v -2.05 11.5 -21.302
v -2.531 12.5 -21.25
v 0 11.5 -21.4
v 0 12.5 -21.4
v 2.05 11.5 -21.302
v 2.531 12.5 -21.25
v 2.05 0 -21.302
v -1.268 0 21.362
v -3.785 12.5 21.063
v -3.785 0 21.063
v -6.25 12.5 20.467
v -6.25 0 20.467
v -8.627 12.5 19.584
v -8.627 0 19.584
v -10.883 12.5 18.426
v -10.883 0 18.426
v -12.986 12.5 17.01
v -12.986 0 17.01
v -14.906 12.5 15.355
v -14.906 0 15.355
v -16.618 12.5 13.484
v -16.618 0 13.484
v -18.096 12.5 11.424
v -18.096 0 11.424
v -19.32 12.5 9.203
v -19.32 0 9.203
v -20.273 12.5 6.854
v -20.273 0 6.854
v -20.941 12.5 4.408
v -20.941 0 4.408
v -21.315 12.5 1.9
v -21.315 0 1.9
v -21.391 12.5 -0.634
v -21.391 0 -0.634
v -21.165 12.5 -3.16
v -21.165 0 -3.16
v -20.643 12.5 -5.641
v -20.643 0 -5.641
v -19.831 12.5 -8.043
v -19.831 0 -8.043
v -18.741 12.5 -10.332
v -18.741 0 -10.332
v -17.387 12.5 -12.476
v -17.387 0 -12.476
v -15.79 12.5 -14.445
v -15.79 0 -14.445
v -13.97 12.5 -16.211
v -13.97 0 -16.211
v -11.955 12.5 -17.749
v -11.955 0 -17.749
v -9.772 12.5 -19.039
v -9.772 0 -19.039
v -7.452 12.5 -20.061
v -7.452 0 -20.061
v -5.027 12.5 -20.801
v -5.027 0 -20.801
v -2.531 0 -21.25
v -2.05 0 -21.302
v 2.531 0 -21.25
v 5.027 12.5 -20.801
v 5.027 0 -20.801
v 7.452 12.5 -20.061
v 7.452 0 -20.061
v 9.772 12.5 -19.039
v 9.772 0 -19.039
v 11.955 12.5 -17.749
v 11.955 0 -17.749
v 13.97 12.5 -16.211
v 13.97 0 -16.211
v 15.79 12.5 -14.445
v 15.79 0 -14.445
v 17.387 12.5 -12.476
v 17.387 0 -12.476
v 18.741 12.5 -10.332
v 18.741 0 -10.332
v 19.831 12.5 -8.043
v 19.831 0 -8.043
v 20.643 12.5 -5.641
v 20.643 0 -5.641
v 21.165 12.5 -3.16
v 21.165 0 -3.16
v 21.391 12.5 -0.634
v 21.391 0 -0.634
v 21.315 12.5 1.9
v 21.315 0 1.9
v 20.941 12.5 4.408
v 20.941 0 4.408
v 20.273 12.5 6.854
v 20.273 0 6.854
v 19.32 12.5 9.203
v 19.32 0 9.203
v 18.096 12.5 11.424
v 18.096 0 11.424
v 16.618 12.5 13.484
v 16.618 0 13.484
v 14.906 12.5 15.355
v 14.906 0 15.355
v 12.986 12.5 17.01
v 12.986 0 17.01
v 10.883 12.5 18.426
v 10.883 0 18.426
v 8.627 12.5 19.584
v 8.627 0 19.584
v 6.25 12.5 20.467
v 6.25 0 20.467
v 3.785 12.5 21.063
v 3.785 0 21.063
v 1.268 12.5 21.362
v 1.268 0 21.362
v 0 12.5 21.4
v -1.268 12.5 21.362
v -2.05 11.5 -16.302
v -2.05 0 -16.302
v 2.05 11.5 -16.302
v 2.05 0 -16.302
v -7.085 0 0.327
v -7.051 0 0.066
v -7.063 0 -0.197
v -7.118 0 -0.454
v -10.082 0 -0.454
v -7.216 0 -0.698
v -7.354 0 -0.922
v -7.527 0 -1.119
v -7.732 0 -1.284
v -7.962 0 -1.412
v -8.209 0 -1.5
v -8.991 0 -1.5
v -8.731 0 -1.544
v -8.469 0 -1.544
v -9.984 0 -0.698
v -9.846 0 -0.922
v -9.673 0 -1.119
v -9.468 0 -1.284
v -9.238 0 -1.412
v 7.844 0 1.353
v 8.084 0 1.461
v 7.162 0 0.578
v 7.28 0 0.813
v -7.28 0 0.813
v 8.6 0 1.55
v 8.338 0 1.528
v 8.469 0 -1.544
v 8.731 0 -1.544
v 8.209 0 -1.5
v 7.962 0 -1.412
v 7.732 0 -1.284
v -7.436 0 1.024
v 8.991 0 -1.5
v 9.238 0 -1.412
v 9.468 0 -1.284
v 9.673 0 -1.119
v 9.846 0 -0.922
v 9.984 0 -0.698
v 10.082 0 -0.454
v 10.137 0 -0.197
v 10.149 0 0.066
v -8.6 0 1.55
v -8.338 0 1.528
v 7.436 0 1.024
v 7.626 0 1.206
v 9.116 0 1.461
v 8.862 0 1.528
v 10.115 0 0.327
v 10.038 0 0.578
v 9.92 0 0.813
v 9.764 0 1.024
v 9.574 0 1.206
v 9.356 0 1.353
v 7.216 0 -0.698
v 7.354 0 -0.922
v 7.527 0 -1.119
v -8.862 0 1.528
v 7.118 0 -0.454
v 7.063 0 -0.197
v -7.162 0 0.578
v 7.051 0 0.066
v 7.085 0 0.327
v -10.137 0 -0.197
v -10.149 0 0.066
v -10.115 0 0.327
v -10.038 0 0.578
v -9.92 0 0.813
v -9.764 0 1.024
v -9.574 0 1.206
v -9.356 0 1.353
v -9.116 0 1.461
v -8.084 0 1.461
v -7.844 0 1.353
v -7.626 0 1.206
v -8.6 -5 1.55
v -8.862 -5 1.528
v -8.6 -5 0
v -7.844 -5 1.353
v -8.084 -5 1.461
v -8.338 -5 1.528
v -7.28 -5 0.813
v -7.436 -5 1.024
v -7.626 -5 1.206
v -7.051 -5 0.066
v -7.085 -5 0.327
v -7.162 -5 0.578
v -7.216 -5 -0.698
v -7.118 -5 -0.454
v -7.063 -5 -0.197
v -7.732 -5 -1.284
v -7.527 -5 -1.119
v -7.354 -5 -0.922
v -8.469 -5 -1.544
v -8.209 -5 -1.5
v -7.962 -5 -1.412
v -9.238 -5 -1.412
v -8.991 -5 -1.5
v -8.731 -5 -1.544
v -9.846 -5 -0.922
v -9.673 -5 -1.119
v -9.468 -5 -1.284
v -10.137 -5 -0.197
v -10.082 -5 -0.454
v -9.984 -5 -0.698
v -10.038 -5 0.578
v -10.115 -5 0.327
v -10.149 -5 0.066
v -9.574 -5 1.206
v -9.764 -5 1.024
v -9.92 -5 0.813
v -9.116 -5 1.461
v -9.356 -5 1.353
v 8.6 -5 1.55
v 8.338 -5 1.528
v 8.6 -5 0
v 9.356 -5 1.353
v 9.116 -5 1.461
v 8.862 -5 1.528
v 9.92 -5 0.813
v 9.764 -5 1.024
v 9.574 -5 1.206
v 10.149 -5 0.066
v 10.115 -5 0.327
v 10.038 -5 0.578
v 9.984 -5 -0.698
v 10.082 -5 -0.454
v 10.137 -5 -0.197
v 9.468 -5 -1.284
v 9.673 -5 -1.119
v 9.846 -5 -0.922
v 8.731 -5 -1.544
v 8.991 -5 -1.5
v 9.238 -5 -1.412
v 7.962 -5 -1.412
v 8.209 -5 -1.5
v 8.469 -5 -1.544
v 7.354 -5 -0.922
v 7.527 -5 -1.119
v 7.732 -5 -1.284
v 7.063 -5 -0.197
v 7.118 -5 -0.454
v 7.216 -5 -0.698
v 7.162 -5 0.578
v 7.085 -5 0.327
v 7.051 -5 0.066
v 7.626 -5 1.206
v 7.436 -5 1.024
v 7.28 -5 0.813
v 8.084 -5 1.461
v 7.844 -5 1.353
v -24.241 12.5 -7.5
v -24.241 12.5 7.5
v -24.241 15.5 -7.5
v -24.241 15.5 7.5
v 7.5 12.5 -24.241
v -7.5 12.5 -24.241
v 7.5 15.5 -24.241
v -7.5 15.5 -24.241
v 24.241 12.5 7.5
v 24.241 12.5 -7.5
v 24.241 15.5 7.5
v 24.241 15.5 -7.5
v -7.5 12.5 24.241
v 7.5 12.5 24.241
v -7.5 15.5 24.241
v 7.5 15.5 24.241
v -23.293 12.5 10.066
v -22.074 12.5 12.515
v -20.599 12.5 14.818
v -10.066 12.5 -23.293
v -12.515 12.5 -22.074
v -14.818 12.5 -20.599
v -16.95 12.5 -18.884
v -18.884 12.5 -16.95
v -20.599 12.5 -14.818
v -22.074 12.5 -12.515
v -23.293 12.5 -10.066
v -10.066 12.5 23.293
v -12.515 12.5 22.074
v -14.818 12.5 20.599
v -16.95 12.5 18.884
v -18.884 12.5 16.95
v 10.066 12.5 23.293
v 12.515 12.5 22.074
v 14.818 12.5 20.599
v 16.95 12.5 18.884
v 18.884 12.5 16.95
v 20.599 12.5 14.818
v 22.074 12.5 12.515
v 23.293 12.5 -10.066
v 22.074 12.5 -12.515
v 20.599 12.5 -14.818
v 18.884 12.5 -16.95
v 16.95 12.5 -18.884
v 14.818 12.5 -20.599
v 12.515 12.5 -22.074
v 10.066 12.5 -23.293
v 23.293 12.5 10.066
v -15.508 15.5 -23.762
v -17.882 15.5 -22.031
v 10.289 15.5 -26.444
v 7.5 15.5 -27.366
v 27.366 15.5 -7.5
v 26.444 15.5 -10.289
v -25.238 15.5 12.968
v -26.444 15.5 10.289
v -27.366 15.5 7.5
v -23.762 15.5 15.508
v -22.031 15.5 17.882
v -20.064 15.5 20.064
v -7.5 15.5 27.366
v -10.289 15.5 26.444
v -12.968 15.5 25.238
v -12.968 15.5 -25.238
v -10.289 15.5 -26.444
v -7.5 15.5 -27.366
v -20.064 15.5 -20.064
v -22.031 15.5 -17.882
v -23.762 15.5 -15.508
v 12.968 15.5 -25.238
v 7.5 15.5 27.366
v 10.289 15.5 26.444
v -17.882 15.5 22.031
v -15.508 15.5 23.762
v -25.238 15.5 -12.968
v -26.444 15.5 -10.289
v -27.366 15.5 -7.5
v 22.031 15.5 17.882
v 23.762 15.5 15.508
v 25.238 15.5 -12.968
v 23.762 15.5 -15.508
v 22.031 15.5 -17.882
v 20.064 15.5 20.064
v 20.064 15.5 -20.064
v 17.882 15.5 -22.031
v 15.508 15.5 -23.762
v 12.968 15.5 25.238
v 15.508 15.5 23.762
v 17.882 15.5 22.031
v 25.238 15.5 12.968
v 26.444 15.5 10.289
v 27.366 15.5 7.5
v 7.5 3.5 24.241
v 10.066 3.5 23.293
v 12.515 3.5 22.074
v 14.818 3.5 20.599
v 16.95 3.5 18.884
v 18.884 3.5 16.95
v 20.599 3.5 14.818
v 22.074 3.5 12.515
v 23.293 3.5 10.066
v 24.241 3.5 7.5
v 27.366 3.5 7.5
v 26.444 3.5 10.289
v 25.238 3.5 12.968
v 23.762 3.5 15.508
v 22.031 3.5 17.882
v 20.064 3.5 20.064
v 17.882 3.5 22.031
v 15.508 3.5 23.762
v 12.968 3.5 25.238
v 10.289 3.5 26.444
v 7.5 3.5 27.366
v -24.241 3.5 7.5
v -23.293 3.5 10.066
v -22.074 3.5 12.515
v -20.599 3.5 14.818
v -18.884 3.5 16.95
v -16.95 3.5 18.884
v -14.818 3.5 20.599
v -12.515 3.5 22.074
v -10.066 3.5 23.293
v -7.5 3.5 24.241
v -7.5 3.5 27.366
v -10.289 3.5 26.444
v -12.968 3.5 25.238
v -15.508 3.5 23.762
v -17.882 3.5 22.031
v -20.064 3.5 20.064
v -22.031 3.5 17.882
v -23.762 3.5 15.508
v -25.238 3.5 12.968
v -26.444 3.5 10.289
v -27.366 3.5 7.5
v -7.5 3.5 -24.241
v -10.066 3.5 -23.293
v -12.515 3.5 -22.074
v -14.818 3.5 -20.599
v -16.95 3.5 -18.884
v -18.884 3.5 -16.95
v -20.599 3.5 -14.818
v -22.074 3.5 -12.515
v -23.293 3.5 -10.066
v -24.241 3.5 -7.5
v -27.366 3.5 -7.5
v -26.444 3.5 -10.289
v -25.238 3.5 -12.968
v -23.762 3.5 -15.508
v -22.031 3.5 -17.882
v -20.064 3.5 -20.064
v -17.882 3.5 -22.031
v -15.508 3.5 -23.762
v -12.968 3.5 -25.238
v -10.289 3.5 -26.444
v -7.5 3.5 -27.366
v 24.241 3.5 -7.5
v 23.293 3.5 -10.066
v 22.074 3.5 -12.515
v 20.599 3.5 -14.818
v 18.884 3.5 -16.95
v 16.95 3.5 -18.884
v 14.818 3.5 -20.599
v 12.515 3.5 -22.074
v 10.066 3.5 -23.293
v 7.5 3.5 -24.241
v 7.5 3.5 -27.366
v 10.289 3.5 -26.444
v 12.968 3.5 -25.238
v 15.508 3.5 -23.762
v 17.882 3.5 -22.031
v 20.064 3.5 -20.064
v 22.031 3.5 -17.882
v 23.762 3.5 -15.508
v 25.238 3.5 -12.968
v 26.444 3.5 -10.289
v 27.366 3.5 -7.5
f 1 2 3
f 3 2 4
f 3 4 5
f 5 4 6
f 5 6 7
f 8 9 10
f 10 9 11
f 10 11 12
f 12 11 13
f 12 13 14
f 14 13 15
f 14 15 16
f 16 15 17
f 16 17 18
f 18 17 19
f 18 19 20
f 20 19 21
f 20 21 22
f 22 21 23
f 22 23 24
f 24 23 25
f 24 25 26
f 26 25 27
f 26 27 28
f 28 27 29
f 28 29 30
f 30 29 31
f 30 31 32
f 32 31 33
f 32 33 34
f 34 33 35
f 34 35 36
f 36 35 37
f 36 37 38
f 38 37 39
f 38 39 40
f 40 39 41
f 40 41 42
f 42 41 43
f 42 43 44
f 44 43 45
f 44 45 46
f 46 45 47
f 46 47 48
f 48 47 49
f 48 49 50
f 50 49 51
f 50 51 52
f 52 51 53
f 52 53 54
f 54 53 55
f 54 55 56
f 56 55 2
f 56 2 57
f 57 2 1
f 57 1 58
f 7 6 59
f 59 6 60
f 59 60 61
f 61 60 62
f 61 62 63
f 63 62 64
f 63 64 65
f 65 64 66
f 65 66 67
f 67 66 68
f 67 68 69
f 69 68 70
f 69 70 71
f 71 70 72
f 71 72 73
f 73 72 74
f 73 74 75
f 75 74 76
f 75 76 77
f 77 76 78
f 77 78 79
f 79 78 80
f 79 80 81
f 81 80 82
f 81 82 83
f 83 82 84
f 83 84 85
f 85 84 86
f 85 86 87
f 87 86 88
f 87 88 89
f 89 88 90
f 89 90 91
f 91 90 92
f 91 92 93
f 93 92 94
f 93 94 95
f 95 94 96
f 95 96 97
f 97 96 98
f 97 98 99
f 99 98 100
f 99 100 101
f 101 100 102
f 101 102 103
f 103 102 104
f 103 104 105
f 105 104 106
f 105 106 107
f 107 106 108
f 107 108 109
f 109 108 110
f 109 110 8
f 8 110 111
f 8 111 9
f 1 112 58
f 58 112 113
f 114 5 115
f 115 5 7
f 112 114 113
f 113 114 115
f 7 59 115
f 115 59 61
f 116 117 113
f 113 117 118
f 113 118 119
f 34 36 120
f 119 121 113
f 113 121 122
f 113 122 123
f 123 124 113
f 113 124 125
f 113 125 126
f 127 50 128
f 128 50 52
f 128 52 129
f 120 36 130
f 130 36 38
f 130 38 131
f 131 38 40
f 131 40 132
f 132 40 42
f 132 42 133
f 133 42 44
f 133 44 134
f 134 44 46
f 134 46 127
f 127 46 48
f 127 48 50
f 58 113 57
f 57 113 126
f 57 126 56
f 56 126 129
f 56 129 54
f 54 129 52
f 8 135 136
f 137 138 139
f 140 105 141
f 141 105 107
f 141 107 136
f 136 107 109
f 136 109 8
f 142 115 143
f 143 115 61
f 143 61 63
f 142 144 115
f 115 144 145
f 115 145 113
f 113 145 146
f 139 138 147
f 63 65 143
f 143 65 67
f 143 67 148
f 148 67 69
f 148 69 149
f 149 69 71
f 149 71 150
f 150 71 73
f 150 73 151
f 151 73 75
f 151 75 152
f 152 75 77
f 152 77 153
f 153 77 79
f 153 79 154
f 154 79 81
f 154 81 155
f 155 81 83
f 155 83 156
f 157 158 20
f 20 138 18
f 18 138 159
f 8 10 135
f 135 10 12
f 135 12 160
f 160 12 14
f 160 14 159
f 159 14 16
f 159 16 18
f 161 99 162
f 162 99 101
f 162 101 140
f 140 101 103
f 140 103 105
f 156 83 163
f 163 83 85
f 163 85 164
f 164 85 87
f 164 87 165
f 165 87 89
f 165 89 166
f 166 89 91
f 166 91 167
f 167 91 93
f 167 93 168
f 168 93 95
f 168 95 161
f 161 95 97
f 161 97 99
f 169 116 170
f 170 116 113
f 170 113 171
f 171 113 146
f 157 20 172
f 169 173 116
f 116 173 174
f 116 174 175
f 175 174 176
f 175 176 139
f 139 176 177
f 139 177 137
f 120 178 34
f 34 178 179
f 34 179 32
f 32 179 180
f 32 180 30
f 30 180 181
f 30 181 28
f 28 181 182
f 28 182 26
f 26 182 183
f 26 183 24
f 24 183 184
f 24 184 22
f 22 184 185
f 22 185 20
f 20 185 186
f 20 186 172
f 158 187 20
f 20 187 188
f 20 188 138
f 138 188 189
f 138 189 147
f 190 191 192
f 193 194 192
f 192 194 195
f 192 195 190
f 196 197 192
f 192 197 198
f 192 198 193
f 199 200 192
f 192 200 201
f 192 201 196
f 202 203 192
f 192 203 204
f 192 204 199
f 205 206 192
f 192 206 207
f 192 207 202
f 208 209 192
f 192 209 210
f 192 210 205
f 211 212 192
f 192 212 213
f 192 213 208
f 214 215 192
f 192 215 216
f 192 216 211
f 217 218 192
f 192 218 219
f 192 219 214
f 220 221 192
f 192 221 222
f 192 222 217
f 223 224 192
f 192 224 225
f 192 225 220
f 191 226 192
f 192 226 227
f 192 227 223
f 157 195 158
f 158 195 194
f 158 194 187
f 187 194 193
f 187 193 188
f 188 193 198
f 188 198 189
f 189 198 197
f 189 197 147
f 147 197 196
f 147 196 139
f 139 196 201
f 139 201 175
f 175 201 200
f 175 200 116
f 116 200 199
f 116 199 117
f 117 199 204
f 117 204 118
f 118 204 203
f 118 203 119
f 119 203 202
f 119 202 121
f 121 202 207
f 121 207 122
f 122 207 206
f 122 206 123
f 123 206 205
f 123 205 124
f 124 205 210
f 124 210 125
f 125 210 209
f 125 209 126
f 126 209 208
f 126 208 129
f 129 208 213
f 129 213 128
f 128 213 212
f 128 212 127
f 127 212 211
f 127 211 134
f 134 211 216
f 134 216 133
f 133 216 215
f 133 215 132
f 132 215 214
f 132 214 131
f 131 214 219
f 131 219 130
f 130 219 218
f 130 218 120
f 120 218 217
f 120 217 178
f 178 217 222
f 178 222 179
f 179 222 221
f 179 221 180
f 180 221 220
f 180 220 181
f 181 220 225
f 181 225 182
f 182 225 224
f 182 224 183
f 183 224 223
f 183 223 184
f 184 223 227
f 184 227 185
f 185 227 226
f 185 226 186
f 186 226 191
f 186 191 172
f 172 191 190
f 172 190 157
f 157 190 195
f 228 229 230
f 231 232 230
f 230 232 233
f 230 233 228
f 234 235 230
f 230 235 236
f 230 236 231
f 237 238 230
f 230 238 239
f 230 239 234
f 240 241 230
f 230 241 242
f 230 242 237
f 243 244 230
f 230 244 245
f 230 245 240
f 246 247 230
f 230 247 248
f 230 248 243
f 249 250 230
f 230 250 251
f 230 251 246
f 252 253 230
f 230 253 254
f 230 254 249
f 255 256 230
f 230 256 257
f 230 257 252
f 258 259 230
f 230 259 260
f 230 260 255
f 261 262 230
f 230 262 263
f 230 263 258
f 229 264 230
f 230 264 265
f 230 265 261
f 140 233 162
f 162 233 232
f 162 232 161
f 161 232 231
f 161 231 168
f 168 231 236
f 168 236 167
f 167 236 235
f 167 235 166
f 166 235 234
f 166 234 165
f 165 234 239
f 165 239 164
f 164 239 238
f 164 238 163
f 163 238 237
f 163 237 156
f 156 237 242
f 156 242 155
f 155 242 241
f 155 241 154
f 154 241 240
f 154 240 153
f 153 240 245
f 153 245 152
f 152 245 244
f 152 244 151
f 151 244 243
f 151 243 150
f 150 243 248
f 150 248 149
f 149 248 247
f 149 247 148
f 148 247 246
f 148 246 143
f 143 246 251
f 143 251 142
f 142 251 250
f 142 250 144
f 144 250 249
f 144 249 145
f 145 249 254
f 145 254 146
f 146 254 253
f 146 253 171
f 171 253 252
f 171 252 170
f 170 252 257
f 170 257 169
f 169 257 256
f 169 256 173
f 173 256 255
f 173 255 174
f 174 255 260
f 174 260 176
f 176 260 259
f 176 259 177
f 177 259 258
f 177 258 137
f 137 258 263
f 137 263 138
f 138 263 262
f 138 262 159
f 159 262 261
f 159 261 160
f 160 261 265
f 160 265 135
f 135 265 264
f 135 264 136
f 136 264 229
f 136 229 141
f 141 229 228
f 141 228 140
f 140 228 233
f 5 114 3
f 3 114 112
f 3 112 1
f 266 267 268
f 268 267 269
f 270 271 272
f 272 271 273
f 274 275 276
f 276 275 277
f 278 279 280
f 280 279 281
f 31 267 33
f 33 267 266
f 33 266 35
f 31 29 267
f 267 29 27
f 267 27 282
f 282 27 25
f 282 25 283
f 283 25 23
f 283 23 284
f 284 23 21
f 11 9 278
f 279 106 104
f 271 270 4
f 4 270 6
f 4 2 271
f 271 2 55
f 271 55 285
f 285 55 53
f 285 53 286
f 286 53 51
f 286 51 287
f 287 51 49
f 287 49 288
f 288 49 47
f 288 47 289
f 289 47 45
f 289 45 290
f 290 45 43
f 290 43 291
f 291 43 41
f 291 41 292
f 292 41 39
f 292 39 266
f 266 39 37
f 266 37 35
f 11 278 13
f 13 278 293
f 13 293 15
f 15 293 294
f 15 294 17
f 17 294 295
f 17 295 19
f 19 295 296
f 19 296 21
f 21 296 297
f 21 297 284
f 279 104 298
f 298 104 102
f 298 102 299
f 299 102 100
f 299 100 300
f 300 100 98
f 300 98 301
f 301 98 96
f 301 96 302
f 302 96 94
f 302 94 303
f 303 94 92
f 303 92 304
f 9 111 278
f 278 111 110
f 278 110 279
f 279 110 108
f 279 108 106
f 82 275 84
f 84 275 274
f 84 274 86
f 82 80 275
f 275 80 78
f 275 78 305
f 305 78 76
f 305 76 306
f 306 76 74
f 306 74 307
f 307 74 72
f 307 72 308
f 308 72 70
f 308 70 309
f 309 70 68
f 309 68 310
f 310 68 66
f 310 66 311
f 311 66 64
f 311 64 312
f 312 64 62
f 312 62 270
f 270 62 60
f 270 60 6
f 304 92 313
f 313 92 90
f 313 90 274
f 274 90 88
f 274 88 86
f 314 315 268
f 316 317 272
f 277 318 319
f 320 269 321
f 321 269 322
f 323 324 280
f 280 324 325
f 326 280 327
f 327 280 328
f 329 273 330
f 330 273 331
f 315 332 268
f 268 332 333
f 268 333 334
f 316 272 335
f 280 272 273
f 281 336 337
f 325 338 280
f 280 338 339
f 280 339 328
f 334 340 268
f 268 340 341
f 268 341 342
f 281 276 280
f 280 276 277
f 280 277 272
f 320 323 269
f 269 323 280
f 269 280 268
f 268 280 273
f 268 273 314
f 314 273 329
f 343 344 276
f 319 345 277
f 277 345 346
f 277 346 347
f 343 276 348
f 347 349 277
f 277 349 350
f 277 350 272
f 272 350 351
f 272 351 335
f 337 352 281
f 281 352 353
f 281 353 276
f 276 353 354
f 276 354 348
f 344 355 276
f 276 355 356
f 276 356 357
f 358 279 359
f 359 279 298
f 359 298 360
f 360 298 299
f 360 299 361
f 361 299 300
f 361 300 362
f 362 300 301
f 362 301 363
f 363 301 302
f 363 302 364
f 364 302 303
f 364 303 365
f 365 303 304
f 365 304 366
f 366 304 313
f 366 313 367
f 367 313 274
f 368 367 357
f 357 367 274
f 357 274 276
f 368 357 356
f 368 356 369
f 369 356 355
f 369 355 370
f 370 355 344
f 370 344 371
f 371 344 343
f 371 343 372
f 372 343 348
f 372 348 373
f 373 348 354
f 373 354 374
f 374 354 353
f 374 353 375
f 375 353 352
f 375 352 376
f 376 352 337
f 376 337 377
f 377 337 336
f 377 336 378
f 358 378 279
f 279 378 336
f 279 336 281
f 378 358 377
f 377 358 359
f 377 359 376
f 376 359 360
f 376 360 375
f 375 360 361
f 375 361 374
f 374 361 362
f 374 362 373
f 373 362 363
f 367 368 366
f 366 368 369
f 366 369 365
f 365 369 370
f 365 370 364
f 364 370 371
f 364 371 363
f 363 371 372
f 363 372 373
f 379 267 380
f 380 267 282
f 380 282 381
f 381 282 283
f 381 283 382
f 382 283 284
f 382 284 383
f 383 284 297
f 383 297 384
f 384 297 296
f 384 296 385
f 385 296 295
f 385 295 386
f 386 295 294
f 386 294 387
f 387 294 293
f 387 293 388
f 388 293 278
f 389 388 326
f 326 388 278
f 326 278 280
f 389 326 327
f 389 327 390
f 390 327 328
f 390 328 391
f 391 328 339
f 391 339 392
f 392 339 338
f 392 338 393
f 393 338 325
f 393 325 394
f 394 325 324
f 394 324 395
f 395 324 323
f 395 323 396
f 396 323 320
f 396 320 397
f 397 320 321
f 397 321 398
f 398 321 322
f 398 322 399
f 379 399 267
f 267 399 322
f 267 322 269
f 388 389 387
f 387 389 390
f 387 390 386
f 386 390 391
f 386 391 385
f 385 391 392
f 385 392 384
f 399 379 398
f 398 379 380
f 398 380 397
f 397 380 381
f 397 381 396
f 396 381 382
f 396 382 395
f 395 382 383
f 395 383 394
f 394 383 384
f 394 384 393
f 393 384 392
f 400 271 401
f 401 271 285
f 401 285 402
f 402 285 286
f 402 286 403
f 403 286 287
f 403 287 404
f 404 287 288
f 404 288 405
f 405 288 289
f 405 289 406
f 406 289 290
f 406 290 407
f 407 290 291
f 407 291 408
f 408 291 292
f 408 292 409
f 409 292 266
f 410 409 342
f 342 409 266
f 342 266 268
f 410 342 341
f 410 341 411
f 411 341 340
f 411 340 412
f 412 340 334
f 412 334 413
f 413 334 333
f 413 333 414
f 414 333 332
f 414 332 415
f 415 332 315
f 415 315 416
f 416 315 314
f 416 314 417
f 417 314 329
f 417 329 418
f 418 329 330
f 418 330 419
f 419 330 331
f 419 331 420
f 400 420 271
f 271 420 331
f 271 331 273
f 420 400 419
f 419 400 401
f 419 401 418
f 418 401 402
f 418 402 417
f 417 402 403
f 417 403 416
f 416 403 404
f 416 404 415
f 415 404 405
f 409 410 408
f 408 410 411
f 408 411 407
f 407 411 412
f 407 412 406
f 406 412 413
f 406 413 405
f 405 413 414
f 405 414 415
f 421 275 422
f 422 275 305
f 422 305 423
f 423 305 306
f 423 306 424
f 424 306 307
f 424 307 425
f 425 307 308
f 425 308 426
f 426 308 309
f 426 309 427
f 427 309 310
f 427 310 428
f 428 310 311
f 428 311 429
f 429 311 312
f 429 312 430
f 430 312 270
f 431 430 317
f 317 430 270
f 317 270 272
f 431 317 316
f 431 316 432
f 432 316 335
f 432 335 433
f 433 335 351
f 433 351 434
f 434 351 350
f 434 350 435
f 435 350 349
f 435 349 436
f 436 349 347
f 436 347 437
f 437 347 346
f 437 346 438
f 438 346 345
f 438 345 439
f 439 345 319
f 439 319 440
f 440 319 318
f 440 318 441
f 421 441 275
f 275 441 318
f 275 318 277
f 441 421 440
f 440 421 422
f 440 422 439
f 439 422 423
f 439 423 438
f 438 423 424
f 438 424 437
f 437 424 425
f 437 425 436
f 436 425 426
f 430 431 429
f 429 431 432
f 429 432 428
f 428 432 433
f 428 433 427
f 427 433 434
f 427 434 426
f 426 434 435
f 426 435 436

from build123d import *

# Parameters (mm, degrees)
SKETCH1_R                = 1.55
BOSS_EXTRUDE1_DEPTH      = 11.5
SKETCH1_3_R              = 1.55
BOSS_EXTRUDE2_DEPTH      = 11.5
BOSS_EXTRUDE2_DEPTH_BACK = 5
BOSS_EXTRUDE3_START      = 11.5
SKETCH2_R                = 21.4
SKETCH2_R_2              = 18.4
BOSS_EXTRUDE3_DEPTH      = 4
BOSS_EXTRUDE4_START      = 15.5
SKETCH2_3_R              = 21.4
BOSS_EXTRUDE4_DEPTH      = 3
BOSS_EXTRUDE5_START      = 15.5
BOSS_EXTRUDE5_DEPTH      = 12


with BuildPart() as part:
    # Sketch1 → Boss-Extrude1 (new body)
    with BuildSketch(Plane(origin=(0, 0, 0), x_dir=(1, 0, 0), z_dir=(0, 1, 0))):
        with BuildLine():
            Line((2.05, 16.301584448), (-2.05, 16.301584448))
            Line((-2.05, 16.301584448), (-2.05, 21.301584448))
            ThreePointArc((-2.05, 21.301584448), (0, -21.4), (2.05, 21.301584448))
            Line((2.05, 21.301584448), (2.05, 16.301584448))
        make_face()
        with Locations(Location((-8.6, 0, 0), (0, 0, 270))):
            Circle(SKETCH1_R, mode=Mode.SUBTRACT)
        with Locations(Location((8.6, 0, 0), (0, 0, 270))):
            Circle(SKETCH1_R, mode=Mode.SUBTRACT)
    extrude(amount=BOSS_EXTRUDE1_DEPTH)

    # Sketch1<3> → Boss-Extrude2 (add, two sides)
    with BuildSketch(Plane(origin=(0, 0, 0), x_dir=(1, 0, 0), z_dir=(0, 1, 0))) as boss_extrude2_sk:
        with Locations(Location((-8.6, 0, 0), (0, 0, 270))):
            Circle(SKETCH1_3_R)
        with Locations(Location((8.6, 0, 0), (0, 0, 270))):
            Circle(SKETCH1_3_R)
    extrude(amount=BOSS_EXTRUDE2_DEPTH)
    extrude(boss_extrude2_sk.sketch, amount=-BOSS_EXTRUDE2_DEPTH_BACK)

    # Sketch2 → Boss-Extrude3 (add)
    with BuildSketch(Plane(origin=(0, 0, 0), x_dir=(1, 0, 0), z_dir=(0, 1, 0)).offset(BOSS_EXTRUDE3_START)):
        with Locations(Location((0, 0, 0), (0, 0, 84.502956314))):
            Circle(SKETCH2_R)
        Circle(SKETCH2_R_2, mode=Mode.SUBTRACT)
        Circle(SKETCH2_R_2)
    extrude(amount=BOSS_EXTRUDE3_DEPTH)

    # Sketch2<3> → Boss-Extrude4 (add)
    with BuildSketch(Plane(origin=(0, 0, 0), x_dir=(1, 0, 0), z_dir=(0, 1, 0)).offset(BOSS_EXTRUDE4_START)):
        with BuildLine():
            Line((7.5, 24.241299986), (-7.5, 24.241299986))
            ThreePointArc((-7.5, 24.241299986), (-17.942834573, 17.942834573), (-24.241299986, 7.5))
            Line((-24.241299986, 7.5), (-24.241299986, -7.5))
            ThreePointArc((-24.241299986, -7.5), (-17.942834573, -17.942834573), (-7.5, -24.241299986))
            Line((-7.5, -24.241299986), (7.5, -24.241299986))
            ThreePointArc((7.5, -24.241299986), (17.942834573, -17.942834573), (24.241299986, -7.5))
            Line((24.241299986, -7.5), (24.241299986, 7.5))
            ThreePointArc((24.241299986, 7.5), (17.942834573, 17.942834573), (7.5, 24.241299986))
        make_face()
        with Locations(Location((0, 0, 0), (0, 0, 84.502956314))):
            Circle(SKETCH2_3_R, mode=Mode.SUBTRACT)
    extrude(amount=-BOSS_EXTRUDE4_DEPTH)

    # Sketch2<4> → Boss-Extrude5 (add)
    with BuildSketch(Plane(origin=(0, 0, 0), x_dir=(1, 0, 0), z_dir=(0, 1, 0)).offset(BOSS_EXTRUDE5_START)):
        with BuildLine():
            Line((-7.5, 24.241299986), (-7.5, 27.365866056))
            ThreePointArc((-7.5, 27.365866056), (-20.064154916, 20.064154916), (-27.365866056, 7.5))
            Line((-27.365866056, 7.5), (-24.241299986, 7.5))
            ThreePointArc((-24.241299986, 7.5), (-17.942834573, 17.942834573), (-7.5, 24.241299986))
        make_face()
        with BuildLine():
            ThreePointArc((27.365866056, 7.5), (20.064154916, 20.064154916), (7.5, 27.365866056))
            Line((7.5, 27.365866056), (7.5, 24.241299986))
            ThreePointArc((7.5, 24.241299986), (17.942834573, 17.942834573), (24.241299986, 7.5))
            Line((24.241299986, 7.5), (27.365866056, 7.5))
        make_face()
        with BuildLine():
            Line((-24.241299986, -7.5), (-27.365866056, -7.5))
            ThreePointArc((-27.365866056, -7.5), (-20.064154916, -20.064154916), (-7.5, -27.365866056))
            Line((-7.5, -27.365866056), (-7.5, -24.241299986))
            ThreePointArc((-7.5, -24.241299986), (-17.942834573, -17.942834573), (-24.241299986, -7.5))
        make_face()
        with BuildLine():
            Line((27.365866056, -7.5), (24.241299986, -7.5))
            ThreePointArc((24.241299986, -7.5), (17.942834573, -17.942834573), (7.5, -24.241299986))
            Line((7.5, -24.241299986), (7.5, -27.365866056))
            ThreePointArc((7.5, -27.365866056), (20.064154916, -20.064154916), (27.365866056, -7.5))
        make_face()
    extrude(amount=-BOSS_EXTRUDE5_DEPTH)


solid = part.part
